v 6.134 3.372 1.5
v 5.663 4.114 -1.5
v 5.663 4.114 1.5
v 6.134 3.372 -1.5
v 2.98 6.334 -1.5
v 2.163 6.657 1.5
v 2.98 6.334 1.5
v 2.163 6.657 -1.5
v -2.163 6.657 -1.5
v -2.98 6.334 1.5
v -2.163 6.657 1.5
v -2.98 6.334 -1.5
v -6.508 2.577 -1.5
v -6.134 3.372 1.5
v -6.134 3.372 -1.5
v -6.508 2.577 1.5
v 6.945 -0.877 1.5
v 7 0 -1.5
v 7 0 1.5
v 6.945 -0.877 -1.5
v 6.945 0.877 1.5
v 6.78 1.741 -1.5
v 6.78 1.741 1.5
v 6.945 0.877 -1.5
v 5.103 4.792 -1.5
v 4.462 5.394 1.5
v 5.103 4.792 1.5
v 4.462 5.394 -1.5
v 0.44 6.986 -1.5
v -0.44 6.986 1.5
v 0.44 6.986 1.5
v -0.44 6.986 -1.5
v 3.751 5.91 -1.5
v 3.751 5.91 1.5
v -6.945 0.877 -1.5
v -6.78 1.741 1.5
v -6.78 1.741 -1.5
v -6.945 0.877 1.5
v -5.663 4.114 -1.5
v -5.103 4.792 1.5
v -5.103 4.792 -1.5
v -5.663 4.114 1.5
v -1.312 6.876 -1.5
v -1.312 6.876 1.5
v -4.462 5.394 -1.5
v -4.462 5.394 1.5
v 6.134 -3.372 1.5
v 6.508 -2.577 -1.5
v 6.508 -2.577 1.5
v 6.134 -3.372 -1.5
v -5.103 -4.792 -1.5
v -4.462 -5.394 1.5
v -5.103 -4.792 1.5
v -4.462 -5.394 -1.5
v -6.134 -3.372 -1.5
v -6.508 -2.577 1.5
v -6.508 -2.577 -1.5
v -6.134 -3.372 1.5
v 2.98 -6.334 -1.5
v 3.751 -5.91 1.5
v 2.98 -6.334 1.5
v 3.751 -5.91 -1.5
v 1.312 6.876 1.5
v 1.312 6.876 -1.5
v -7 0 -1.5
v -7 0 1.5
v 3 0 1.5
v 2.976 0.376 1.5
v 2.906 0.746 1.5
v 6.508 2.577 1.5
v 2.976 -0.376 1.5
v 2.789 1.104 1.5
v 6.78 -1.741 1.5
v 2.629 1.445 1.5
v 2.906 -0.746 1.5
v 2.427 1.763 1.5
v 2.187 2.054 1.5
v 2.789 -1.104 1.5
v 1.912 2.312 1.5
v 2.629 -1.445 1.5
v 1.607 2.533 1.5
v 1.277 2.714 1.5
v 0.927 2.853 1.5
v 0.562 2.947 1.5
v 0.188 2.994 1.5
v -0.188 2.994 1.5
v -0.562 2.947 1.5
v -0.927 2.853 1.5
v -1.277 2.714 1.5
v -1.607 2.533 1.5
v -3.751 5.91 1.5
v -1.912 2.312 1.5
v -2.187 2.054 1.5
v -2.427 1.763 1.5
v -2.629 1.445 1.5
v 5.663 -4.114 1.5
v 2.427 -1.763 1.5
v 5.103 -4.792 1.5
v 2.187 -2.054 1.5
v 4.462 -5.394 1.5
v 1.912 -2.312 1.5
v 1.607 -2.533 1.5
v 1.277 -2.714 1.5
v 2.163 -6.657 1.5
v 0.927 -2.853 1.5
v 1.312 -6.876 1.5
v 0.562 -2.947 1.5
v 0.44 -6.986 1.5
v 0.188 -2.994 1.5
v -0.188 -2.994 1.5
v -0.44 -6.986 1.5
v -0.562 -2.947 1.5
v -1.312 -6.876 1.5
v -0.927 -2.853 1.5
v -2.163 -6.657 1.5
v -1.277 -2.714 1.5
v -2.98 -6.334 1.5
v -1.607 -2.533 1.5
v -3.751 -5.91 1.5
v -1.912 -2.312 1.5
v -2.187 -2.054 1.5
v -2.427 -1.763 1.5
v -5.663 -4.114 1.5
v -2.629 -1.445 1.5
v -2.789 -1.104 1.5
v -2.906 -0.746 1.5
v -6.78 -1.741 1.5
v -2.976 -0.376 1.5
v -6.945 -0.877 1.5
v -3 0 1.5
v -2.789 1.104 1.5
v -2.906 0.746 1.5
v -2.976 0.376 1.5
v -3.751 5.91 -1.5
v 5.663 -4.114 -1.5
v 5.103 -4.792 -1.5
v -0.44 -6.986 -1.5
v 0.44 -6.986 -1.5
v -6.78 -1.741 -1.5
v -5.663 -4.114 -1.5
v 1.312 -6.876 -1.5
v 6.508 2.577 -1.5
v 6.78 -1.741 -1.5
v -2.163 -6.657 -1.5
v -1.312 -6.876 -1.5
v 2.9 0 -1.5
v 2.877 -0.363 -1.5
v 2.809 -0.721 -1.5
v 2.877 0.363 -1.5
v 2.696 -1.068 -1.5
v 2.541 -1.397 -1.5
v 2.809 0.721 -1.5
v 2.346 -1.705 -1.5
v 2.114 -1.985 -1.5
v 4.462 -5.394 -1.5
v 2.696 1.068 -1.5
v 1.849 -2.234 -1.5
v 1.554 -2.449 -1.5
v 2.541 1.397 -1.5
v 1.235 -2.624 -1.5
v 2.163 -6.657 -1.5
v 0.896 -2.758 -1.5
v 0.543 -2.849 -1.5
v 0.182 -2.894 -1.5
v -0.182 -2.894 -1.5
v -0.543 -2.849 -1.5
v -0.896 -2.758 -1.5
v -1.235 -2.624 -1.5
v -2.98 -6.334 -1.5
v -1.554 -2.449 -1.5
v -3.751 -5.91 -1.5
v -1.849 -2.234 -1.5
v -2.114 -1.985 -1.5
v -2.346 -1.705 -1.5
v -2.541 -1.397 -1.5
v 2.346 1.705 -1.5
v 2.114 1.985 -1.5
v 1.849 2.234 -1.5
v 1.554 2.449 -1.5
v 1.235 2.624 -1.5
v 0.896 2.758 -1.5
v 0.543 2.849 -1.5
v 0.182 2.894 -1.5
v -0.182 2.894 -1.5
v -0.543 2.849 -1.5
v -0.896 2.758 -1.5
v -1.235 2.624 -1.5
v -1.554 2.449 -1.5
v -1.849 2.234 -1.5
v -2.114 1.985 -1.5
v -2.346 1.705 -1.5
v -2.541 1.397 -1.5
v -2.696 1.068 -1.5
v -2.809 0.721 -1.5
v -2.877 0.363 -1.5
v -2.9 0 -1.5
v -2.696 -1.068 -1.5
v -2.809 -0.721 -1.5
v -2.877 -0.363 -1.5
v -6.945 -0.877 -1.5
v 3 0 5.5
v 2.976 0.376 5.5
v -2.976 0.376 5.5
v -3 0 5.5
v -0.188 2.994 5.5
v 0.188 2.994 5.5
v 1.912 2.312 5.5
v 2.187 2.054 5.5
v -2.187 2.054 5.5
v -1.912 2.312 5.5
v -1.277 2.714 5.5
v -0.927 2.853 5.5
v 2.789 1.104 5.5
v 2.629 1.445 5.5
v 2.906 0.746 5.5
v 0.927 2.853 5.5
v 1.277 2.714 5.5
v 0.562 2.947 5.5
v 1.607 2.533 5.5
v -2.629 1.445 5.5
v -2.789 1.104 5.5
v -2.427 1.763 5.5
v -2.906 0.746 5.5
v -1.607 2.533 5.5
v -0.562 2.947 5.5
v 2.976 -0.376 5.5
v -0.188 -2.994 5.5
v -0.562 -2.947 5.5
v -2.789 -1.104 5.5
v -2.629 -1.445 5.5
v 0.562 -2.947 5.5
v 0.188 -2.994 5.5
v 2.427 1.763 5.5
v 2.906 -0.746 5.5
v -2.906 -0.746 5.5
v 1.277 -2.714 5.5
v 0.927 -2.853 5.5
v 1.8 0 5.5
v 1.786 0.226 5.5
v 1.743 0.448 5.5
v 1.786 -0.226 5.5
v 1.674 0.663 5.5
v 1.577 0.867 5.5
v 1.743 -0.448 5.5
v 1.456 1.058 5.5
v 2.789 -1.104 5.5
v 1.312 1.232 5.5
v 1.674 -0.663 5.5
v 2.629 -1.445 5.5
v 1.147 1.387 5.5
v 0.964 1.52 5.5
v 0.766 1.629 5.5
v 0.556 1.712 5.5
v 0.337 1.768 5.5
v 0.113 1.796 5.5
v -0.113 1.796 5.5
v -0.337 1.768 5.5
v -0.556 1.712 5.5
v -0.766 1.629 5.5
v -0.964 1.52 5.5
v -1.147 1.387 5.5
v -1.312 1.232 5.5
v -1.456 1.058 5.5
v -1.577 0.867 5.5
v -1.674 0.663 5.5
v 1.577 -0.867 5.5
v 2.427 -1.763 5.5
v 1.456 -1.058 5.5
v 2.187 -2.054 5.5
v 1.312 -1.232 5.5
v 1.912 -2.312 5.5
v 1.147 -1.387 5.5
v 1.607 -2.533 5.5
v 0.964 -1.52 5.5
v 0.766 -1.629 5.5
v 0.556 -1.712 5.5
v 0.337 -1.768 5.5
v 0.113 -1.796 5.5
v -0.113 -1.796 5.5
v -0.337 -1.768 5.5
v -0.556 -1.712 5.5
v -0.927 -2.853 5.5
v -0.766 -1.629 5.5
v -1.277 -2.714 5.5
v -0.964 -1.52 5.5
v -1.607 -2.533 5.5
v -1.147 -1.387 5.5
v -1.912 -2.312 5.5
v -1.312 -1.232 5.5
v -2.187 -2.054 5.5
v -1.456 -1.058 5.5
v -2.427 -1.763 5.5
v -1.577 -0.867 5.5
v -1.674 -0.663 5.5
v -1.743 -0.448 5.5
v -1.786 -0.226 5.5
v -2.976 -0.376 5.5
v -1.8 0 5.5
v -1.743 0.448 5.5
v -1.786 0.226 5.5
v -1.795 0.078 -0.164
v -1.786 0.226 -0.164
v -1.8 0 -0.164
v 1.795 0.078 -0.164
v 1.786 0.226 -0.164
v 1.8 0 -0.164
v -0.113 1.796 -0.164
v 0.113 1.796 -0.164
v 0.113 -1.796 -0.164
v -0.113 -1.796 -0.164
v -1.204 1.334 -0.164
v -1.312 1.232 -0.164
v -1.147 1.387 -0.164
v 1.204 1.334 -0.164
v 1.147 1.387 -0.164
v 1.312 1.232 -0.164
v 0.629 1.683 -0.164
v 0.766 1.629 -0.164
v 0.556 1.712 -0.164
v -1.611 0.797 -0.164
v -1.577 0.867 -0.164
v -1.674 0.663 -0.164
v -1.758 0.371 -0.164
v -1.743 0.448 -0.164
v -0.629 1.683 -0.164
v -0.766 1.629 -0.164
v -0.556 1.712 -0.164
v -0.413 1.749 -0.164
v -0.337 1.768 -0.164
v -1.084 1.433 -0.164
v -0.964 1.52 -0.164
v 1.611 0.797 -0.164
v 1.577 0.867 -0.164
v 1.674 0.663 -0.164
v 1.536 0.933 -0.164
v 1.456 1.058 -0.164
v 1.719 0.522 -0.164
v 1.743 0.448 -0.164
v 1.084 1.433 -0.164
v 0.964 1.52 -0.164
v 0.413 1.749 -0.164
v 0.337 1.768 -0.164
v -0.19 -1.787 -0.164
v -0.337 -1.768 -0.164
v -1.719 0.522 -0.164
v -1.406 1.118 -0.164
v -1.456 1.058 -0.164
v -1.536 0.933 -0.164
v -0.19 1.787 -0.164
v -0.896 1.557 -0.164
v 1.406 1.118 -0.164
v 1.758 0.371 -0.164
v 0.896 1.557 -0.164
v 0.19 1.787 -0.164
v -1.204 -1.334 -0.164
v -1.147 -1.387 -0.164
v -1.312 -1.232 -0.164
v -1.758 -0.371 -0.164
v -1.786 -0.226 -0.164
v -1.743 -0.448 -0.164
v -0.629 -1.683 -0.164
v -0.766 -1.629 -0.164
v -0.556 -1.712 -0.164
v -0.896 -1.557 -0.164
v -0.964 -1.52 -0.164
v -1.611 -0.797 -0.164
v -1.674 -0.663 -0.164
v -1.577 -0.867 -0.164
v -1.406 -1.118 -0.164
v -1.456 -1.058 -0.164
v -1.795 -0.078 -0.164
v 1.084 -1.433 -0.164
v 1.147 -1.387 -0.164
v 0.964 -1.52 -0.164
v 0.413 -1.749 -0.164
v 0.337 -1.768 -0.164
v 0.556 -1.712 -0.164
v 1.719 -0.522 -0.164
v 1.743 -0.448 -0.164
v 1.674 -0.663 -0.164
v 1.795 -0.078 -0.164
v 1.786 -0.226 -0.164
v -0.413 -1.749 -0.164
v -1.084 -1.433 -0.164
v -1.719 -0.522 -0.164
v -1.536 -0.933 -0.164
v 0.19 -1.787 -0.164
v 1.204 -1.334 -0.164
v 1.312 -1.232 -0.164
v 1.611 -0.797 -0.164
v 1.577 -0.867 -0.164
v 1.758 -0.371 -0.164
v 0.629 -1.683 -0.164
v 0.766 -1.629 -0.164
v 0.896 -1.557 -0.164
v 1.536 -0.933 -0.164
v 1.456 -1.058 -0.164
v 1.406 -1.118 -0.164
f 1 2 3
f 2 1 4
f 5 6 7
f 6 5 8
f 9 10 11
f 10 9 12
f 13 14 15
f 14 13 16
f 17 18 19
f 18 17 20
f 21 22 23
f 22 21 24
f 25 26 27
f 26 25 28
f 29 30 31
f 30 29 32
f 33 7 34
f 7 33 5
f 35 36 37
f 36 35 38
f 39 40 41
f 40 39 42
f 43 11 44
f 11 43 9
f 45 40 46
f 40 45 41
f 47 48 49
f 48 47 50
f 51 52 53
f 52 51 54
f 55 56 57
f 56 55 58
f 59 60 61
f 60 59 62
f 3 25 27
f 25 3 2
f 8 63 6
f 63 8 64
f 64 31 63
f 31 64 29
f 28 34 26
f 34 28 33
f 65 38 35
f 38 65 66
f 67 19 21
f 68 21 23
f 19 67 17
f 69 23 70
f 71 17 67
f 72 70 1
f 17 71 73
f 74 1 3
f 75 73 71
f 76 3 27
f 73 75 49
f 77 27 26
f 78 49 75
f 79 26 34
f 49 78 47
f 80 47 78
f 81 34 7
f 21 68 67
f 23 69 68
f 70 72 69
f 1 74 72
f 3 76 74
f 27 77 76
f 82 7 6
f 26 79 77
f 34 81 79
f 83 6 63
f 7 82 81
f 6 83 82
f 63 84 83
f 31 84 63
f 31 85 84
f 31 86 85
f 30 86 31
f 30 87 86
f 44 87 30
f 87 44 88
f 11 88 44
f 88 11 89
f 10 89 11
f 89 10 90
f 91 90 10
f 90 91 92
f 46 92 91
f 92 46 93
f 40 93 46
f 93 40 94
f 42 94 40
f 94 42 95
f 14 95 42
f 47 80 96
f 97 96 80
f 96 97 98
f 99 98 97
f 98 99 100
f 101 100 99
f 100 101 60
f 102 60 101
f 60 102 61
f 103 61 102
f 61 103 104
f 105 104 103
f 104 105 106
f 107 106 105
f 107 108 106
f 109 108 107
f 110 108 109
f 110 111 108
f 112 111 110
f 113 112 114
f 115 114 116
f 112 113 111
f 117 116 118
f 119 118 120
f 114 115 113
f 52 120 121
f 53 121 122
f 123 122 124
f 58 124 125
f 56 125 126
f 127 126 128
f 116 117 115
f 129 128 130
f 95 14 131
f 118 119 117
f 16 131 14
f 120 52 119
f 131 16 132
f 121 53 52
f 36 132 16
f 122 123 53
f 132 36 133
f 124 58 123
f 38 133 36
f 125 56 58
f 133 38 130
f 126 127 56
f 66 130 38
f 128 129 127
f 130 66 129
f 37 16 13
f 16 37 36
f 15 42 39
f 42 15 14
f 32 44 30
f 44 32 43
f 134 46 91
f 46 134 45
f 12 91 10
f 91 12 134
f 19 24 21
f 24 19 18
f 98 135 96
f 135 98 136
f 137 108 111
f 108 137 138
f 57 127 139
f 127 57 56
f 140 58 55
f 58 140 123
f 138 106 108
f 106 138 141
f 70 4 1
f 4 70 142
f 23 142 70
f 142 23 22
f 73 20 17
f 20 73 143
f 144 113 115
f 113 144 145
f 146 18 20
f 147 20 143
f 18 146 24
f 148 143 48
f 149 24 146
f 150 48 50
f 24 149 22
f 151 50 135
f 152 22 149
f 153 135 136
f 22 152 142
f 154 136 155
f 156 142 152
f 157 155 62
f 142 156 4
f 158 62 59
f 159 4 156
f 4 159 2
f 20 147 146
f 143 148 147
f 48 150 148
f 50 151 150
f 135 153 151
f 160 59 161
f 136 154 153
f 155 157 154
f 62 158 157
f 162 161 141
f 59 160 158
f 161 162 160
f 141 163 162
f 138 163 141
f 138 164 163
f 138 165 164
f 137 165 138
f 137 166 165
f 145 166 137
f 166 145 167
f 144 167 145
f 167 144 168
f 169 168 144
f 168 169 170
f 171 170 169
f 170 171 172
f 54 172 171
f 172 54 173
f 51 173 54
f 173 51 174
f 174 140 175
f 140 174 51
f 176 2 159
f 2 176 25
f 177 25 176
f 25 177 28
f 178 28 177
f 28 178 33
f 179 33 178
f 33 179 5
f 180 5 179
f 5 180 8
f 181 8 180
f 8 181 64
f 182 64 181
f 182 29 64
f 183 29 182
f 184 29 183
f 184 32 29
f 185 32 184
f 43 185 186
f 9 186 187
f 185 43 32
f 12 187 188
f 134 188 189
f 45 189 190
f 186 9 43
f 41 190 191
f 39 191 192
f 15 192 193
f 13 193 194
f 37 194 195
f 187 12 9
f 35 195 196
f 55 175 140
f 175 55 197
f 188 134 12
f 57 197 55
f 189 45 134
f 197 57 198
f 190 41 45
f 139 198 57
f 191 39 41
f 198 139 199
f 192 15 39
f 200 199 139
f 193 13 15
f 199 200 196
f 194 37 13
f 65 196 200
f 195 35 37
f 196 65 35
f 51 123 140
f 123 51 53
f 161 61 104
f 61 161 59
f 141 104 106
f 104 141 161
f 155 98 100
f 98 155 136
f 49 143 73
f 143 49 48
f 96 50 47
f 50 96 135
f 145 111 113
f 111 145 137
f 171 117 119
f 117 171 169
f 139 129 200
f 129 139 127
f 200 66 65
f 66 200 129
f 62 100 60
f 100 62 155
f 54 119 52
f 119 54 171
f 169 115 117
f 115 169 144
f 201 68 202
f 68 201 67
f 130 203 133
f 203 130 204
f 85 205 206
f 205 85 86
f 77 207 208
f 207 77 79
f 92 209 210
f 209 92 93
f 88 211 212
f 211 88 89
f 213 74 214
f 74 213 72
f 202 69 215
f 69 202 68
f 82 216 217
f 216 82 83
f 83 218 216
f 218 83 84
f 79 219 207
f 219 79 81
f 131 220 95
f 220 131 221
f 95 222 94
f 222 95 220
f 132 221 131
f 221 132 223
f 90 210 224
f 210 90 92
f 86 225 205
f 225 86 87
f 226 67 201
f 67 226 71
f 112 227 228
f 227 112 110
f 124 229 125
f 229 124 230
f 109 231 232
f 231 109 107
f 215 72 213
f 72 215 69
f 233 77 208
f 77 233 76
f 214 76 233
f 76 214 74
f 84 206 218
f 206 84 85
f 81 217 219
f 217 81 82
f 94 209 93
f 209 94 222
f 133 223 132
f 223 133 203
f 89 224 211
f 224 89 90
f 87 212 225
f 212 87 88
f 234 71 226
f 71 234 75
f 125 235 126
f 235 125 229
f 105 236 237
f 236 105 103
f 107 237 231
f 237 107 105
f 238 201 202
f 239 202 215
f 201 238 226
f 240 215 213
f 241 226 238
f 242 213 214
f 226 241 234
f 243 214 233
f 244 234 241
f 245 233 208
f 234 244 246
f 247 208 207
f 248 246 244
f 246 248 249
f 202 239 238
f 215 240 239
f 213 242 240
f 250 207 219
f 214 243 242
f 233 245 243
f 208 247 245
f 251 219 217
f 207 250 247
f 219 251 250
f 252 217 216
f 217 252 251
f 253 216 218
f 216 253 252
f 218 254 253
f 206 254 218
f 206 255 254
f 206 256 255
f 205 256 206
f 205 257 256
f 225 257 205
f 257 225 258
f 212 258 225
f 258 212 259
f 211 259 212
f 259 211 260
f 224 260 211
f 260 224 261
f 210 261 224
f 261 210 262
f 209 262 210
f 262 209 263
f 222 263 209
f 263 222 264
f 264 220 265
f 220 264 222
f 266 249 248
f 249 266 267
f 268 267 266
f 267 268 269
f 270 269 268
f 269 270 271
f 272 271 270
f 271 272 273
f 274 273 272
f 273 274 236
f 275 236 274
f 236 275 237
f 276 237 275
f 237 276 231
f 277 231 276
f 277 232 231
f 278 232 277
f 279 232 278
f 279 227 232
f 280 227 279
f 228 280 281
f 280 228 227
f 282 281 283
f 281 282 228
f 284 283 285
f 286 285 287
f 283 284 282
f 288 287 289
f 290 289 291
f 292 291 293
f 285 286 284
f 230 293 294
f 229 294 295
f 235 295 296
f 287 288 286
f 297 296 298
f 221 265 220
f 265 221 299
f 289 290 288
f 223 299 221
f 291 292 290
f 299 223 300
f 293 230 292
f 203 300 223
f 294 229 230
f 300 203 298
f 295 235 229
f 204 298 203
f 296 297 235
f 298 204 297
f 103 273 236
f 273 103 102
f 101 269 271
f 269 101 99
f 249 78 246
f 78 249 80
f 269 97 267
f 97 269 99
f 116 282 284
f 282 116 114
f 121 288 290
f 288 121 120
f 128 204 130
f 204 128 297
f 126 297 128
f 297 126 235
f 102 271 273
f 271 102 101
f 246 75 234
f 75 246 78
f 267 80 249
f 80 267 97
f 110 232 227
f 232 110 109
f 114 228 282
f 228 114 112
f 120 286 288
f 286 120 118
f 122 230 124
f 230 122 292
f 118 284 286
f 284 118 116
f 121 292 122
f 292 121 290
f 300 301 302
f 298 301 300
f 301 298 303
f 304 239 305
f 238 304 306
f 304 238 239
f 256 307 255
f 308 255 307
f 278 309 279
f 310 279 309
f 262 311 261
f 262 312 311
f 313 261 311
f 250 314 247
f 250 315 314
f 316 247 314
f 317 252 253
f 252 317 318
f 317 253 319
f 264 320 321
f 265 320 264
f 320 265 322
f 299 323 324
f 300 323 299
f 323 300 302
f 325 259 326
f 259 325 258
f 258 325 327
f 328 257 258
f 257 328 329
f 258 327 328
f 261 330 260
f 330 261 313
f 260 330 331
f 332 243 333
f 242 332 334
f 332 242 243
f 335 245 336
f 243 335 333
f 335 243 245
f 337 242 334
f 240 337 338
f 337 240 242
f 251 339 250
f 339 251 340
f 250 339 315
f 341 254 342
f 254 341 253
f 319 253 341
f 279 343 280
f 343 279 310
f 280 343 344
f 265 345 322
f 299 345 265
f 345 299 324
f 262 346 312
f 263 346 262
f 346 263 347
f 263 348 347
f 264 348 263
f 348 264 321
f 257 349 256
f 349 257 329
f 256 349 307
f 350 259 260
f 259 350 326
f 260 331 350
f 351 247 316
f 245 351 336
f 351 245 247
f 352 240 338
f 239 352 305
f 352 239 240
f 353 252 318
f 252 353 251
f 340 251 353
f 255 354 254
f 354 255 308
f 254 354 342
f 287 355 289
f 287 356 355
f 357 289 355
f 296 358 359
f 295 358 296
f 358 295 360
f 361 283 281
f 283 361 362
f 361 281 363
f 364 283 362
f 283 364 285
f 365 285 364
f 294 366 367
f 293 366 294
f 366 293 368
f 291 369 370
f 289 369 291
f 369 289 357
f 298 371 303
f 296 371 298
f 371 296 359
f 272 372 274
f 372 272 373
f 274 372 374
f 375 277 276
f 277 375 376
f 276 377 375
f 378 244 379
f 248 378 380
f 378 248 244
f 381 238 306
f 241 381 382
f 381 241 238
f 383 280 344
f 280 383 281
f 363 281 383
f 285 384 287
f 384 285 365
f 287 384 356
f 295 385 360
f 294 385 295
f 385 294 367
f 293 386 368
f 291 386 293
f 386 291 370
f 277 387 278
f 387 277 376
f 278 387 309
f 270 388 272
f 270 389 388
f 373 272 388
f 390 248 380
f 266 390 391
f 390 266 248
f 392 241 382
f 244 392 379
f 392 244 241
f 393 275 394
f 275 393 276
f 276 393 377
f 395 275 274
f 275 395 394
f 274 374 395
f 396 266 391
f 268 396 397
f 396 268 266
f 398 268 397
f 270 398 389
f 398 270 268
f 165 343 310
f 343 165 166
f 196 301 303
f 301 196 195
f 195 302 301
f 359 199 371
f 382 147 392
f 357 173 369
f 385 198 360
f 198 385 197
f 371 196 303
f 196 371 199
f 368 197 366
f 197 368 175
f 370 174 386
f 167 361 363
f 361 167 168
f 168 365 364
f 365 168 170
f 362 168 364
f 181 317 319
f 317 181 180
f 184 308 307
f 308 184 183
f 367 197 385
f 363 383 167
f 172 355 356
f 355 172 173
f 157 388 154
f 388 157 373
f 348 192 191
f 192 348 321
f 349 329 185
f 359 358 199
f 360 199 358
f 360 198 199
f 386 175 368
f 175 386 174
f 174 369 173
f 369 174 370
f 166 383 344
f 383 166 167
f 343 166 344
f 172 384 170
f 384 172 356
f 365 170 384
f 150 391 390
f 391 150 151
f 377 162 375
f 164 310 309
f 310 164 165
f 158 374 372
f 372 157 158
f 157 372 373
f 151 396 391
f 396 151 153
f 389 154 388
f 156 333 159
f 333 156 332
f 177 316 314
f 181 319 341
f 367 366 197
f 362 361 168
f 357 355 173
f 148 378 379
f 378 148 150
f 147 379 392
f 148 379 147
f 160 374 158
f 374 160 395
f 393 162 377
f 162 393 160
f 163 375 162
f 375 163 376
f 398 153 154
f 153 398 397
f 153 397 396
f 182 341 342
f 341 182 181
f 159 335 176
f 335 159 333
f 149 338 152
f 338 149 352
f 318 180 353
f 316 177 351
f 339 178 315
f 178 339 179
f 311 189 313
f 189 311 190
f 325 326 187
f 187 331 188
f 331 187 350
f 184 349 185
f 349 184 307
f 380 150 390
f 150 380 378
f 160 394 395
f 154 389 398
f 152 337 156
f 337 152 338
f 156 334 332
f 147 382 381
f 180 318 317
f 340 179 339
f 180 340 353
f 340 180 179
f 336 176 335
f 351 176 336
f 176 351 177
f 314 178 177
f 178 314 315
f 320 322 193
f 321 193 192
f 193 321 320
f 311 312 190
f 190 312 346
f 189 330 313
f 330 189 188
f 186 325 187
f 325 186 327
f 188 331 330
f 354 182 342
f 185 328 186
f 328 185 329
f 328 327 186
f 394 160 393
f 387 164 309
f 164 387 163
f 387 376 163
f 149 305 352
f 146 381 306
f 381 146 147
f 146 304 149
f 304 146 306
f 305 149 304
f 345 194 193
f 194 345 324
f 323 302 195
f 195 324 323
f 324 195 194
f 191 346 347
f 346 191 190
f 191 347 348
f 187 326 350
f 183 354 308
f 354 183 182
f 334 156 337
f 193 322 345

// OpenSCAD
$fn = 50;


difference() {
	union() {
		translate(v = [0, 0, -1.5000000000]) {
			cylinder(h = 3, r = 7.0000000000);
		}
		translate(v = [0, 0, -1.5000000000]) {
			cylinder(h = 7, r = 3.0000000000);
		}
	}
	union() {
		translate(v = [0, 0, -1.5000000000]) {
			rotate(a = [0, 180, 0]) {
				difference() {
					union() {
						translate(v = [0, 0, -7.0000000000]) {
							cylinder(h = 7, r = 1.5000000000);
						}
						translate(v = [0, 0, -7.0000000000]) {
							cylinder(h = 7, r = 1.8000000000);
						}
						translate(v = [0, 0, -1.7000000000]) {
							cylinder(h = 1.7000000000, r1 = 1.5000000000, r2 = 2.9000000000);
						}
						translate(v = [0, 0, -7.0000000000]) {
							cylinder(h = 7, r = 1.5000000000);
						}
					}
					union();
				}
			}
		}
		translate(v = [0, 0, -100.0000000000]) {
			cylinder(h = 200, r = 1.5000000000);
		}
	}
}
